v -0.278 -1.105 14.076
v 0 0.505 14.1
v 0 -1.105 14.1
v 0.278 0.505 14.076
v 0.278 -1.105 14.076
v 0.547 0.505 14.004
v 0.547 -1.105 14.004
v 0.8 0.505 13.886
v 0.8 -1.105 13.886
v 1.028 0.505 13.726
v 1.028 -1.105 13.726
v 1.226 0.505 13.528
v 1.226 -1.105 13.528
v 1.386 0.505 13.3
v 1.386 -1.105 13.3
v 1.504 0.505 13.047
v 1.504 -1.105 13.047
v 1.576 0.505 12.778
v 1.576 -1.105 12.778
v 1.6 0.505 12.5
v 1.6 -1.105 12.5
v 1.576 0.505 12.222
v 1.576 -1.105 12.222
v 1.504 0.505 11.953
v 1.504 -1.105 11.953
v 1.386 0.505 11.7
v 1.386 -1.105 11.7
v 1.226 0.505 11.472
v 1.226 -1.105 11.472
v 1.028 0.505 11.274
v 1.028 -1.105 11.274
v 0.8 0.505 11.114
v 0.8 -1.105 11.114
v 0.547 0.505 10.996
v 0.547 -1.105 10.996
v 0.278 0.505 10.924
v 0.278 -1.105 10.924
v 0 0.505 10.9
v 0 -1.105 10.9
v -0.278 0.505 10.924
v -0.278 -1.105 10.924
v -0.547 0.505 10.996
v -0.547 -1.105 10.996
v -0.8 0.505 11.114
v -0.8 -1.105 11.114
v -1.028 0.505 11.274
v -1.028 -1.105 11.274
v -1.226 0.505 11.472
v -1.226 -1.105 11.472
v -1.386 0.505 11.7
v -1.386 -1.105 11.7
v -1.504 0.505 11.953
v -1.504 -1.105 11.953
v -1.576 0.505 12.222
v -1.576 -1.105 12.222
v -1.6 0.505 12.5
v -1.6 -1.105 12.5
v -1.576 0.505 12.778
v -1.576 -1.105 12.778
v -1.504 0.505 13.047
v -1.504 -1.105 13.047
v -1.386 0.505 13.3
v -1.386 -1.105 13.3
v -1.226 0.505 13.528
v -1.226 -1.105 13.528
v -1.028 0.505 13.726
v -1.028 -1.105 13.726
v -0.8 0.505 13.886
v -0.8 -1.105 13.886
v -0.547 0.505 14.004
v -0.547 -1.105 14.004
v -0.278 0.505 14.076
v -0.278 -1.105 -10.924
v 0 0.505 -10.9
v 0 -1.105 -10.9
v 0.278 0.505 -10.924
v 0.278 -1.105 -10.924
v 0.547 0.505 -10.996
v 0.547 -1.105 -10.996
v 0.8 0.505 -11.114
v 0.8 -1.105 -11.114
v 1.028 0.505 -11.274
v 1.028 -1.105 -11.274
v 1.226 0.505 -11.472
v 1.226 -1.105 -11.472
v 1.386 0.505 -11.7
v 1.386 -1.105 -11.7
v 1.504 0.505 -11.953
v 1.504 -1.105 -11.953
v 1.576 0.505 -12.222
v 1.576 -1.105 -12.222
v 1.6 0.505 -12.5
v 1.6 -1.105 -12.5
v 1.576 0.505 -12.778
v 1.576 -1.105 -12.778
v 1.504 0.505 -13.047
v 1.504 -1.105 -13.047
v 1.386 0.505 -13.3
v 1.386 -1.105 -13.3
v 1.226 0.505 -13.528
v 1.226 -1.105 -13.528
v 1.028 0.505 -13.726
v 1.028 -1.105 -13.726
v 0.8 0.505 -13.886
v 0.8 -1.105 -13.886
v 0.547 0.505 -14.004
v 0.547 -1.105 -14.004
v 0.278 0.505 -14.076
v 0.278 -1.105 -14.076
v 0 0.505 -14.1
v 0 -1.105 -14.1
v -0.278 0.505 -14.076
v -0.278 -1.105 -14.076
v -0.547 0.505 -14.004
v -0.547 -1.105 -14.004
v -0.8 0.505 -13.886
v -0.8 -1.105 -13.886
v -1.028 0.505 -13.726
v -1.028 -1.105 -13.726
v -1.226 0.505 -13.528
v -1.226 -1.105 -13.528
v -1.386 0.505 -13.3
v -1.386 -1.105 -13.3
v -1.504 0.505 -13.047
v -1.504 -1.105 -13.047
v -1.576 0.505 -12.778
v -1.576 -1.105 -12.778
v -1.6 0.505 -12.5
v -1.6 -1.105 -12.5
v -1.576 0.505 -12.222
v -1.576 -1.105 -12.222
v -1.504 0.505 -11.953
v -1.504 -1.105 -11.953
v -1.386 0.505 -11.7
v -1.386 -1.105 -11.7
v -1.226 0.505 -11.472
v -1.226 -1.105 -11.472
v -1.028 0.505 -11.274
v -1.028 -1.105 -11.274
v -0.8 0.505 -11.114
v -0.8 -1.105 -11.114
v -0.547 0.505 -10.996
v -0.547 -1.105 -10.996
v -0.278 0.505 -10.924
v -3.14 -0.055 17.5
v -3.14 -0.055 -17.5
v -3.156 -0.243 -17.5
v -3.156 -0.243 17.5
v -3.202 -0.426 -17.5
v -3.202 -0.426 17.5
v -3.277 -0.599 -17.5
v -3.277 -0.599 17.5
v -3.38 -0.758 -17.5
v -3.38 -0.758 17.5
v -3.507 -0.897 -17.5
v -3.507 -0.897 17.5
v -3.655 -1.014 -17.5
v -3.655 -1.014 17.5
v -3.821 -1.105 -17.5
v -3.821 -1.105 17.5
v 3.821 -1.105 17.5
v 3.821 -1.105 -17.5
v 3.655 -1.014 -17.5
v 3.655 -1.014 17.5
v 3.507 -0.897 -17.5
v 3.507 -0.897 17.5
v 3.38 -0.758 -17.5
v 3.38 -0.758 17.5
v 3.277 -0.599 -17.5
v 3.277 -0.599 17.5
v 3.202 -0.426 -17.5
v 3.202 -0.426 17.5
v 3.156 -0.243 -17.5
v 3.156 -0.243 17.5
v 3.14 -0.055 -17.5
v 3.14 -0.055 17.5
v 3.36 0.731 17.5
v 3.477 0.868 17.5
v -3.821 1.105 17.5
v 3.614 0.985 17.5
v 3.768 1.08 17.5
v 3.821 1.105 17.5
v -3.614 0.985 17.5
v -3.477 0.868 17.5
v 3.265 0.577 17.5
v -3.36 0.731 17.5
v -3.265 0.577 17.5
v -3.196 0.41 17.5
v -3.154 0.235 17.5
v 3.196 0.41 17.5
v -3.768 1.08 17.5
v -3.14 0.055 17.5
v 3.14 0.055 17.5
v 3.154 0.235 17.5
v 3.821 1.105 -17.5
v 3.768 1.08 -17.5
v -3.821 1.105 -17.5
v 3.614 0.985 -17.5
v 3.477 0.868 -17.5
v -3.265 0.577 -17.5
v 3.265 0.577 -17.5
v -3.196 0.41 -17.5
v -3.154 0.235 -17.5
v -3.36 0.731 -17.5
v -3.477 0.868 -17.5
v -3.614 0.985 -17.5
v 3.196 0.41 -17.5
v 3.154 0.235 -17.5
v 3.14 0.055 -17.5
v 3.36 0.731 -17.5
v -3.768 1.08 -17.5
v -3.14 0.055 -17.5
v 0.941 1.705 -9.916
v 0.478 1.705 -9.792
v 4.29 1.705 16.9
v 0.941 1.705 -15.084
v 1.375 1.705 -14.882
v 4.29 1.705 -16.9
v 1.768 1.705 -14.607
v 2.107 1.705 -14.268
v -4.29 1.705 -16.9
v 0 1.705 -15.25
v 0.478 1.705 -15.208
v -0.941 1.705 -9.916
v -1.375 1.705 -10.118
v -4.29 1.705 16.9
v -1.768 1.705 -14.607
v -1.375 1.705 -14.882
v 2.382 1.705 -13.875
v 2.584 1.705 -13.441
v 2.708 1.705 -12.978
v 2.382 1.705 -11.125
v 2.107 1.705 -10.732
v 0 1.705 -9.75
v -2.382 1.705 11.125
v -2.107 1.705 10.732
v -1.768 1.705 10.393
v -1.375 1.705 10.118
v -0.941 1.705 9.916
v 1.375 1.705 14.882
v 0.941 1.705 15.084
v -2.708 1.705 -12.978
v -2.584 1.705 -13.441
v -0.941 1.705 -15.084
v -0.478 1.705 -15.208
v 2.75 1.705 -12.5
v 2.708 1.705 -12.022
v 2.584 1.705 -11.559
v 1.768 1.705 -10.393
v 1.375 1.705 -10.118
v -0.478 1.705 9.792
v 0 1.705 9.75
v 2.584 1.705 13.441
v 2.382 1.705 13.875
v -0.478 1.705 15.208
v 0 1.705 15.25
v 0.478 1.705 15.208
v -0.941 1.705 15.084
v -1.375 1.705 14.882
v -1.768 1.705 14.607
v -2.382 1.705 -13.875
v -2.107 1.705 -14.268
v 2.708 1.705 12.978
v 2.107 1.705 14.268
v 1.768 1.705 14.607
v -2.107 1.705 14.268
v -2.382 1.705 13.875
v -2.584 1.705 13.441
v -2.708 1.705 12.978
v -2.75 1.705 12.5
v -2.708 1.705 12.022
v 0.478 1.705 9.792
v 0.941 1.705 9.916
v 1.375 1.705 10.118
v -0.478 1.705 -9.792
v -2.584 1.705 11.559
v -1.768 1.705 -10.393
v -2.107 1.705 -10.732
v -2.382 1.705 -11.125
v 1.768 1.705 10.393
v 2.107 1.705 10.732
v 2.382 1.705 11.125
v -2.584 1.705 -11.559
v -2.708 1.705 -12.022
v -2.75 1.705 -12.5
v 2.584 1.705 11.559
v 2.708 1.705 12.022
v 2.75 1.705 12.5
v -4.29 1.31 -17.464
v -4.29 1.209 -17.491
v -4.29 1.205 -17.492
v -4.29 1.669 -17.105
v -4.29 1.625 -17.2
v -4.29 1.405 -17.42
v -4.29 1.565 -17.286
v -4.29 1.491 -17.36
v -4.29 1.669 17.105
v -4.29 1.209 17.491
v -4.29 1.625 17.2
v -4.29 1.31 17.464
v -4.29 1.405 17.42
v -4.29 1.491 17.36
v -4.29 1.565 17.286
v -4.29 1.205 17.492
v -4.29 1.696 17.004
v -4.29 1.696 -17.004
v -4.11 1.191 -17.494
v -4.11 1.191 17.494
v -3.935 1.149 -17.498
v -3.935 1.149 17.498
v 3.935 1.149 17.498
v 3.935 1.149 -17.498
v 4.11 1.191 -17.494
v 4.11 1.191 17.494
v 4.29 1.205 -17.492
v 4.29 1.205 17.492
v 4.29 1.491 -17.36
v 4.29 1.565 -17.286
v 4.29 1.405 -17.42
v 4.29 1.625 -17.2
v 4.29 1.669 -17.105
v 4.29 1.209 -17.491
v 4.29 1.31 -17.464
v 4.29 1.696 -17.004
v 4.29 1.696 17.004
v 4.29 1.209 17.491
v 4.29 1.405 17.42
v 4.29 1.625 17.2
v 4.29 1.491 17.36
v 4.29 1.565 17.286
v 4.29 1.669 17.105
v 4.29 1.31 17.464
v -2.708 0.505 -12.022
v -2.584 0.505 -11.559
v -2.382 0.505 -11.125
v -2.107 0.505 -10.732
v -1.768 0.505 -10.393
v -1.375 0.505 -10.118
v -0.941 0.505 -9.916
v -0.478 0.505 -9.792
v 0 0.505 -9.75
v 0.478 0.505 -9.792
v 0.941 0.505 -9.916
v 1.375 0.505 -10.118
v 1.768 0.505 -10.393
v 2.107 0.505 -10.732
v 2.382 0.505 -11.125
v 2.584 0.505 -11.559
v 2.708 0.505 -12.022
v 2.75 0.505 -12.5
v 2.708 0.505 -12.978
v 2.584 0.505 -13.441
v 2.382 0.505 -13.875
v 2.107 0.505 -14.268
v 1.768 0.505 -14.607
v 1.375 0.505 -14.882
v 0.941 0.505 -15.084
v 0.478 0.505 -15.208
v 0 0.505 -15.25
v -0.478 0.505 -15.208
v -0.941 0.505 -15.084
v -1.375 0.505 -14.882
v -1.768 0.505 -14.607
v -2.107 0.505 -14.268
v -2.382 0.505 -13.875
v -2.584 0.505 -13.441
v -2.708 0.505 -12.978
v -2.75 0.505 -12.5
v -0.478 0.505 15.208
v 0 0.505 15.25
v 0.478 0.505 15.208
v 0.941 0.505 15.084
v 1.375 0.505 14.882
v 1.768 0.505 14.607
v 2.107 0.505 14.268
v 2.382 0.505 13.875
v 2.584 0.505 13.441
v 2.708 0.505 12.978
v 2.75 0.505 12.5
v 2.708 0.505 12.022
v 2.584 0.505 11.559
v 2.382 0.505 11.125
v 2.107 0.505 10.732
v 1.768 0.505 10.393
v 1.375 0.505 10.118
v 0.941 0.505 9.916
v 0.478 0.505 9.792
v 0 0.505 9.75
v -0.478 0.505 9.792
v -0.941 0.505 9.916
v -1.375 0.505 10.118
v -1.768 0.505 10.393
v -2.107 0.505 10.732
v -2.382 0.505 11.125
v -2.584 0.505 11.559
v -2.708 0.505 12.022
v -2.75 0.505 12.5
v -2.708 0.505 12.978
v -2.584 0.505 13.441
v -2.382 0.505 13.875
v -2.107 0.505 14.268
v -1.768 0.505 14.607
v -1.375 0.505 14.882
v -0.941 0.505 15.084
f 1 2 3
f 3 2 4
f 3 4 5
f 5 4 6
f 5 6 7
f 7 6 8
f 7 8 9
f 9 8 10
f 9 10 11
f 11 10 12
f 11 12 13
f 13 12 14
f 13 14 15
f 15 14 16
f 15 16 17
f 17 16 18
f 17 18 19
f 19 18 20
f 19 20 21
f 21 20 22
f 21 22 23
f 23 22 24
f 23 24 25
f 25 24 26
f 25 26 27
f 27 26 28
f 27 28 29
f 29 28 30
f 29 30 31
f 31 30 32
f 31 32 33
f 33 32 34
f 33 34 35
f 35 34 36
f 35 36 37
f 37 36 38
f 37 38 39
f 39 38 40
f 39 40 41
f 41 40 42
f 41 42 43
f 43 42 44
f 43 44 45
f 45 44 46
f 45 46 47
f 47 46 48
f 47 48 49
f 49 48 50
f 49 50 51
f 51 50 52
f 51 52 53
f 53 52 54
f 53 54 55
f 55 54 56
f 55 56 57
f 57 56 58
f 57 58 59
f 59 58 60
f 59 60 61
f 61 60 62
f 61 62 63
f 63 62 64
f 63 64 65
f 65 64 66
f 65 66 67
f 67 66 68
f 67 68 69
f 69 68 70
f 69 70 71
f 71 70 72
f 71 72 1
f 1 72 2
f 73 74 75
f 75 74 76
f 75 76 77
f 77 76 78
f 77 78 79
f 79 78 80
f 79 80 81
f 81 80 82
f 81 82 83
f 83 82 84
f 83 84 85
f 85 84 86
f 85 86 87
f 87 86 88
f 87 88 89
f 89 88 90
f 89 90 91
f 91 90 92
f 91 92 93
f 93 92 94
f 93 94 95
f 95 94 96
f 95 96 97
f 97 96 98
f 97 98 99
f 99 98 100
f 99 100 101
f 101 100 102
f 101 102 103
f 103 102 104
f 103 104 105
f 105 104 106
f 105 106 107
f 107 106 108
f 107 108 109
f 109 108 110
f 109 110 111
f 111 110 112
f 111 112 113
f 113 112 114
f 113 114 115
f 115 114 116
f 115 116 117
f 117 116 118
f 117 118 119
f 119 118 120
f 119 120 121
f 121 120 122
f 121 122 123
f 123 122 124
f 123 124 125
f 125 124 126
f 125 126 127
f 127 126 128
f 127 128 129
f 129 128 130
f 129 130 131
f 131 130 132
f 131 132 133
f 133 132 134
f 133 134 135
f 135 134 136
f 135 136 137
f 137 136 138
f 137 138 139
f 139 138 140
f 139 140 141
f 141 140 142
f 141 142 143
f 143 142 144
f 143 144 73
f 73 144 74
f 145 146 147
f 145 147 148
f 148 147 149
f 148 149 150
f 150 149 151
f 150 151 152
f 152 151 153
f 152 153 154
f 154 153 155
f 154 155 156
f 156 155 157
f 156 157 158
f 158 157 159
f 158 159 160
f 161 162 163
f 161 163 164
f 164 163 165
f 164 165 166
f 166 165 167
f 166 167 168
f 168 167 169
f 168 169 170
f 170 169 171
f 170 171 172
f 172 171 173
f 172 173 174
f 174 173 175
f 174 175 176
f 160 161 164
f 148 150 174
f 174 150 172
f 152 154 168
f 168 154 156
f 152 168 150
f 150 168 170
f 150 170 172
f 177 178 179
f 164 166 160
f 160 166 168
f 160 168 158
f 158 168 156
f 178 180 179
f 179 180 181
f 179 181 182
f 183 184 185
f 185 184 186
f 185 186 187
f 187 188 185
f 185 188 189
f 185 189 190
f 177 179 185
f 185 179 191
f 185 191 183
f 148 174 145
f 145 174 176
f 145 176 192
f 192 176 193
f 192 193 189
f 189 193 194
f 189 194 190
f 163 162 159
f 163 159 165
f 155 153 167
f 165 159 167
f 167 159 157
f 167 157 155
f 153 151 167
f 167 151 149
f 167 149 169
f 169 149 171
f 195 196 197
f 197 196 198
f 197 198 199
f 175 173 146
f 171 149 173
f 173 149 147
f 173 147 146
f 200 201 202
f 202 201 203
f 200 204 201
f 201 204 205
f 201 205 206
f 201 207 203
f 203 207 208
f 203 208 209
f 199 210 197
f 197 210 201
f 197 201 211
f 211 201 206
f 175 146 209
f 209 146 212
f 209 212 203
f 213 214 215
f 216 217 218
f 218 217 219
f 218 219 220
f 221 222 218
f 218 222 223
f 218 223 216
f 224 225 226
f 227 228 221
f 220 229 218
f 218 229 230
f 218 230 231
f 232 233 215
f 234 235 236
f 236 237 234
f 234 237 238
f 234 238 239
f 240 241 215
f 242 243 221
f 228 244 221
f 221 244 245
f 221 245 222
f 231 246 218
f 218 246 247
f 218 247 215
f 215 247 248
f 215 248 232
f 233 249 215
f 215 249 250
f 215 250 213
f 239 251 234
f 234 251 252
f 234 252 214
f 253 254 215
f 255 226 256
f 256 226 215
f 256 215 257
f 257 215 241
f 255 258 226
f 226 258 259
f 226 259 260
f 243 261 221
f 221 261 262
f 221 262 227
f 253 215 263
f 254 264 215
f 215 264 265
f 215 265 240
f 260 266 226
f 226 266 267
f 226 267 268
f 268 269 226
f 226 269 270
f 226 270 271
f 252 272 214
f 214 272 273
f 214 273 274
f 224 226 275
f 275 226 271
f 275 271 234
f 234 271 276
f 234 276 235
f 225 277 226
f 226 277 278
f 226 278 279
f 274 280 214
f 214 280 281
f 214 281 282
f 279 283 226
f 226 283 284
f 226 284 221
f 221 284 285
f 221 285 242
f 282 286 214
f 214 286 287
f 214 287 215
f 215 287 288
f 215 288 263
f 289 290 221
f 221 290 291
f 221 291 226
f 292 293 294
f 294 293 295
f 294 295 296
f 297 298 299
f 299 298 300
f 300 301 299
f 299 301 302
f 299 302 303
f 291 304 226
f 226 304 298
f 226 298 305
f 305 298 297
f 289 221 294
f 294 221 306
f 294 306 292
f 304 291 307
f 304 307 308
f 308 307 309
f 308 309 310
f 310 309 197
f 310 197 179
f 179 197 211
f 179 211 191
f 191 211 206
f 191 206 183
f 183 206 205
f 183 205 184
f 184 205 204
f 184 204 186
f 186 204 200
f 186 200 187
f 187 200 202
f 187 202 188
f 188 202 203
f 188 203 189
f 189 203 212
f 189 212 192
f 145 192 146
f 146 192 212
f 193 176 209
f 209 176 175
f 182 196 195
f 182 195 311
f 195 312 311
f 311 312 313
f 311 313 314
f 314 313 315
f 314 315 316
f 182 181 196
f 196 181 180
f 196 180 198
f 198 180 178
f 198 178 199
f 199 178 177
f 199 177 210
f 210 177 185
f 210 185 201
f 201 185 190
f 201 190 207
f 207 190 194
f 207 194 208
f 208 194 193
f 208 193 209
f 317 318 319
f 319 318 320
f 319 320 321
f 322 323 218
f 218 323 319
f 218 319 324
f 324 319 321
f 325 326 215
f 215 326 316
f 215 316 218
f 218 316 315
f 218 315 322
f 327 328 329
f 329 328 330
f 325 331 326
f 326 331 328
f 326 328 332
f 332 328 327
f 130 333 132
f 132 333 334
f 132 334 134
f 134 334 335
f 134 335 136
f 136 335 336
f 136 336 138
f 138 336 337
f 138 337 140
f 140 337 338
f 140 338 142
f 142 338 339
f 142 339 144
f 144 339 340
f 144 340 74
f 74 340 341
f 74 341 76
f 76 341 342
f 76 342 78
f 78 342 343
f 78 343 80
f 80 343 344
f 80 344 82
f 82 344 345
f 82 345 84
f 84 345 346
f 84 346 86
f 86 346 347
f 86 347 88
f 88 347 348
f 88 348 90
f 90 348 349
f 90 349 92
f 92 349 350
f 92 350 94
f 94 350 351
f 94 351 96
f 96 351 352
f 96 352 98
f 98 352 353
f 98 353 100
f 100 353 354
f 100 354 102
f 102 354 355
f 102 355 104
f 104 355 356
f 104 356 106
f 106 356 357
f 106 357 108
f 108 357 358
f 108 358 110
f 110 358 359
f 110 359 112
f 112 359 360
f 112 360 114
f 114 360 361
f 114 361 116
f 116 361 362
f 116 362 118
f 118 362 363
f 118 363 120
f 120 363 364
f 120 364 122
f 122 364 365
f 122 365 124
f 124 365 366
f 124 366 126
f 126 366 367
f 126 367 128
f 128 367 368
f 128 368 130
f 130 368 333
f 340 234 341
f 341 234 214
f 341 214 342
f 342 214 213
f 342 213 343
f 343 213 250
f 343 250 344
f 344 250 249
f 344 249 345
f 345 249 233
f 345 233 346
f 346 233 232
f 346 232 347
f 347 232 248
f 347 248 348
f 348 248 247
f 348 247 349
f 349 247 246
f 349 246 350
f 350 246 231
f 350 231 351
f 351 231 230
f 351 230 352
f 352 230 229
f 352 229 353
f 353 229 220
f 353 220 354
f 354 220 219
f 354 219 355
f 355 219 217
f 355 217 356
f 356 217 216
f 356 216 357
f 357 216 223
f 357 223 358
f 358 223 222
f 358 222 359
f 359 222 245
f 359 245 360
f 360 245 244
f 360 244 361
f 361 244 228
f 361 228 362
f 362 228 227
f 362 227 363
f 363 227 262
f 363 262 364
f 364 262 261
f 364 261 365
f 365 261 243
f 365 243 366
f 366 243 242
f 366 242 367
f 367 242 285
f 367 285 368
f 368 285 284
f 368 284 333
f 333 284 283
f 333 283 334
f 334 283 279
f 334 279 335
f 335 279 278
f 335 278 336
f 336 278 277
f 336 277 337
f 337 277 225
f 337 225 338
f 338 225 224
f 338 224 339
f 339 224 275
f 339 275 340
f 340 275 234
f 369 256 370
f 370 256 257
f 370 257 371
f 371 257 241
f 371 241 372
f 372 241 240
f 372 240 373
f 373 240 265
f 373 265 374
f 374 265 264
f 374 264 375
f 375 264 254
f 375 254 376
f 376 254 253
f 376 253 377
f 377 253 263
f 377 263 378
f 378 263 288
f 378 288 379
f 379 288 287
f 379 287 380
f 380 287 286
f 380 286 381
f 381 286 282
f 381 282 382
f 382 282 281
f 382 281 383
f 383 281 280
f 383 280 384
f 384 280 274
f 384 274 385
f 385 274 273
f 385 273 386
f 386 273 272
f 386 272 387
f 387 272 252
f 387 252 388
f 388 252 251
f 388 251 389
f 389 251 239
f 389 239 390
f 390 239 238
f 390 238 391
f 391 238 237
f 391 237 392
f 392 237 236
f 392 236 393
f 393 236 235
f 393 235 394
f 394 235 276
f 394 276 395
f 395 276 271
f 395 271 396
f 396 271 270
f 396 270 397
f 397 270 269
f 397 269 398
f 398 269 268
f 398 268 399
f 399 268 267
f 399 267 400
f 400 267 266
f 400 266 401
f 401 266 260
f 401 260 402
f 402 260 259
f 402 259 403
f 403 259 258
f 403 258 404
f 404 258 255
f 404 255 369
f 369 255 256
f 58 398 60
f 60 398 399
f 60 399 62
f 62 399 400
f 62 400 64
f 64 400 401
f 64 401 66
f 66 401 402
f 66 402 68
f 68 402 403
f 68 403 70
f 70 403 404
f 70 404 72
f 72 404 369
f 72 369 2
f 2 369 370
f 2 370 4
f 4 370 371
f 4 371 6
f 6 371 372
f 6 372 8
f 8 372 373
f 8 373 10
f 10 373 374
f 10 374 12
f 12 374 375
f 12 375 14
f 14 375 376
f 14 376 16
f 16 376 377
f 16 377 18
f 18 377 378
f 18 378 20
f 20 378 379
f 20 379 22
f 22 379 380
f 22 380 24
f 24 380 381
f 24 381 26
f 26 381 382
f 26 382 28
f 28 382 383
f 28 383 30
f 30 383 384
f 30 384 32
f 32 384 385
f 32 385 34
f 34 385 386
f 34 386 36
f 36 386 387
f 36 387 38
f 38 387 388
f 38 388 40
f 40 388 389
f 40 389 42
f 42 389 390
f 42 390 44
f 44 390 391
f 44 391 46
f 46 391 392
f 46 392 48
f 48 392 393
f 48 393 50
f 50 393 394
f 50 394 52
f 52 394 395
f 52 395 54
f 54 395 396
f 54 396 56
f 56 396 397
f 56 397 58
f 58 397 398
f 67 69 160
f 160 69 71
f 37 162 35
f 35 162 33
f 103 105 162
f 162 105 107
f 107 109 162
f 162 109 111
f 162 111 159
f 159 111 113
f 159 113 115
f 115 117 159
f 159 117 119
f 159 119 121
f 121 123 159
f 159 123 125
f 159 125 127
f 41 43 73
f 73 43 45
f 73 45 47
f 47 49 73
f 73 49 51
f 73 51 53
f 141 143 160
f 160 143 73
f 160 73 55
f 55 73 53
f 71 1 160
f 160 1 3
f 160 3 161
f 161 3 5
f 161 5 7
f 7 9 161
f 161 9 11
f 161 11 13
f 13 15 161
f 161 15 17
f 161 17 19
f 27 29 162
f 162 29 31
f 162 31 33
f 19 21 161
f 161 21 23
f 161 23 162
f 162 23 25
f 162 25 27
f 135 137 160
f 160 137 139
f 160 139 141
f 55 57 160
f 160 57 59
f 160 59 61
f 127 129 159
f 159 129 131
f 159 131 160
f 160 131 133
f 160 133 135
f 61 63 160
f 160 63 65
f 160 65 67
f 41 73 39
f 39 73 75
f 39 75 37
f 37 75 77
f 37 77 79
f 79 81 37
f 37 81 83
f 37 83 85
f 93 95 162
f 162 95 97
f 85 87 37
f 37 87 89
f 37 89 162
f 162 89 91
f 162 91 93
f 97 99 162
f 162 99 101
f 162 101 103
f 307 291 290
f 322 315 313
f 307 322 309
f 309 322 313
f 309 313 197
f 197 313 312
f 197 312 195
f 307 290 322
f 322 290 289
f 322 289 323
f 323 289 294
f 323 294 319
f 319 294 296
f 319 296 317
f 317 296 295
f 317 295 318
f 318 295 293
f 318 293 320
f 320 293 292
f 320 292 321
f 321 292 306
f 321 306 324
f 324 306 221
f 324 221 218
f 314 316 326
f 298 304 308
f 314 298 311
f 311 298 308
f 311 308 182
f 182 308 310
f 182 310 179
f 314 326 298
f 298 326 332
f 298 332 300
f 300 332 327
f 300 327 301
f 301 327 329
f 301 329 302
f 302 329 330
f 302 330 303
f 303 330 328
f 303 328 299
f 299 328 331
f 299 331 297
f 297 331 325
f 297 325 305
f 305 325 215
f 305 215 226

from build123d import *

# Parameters (mm, degrees)
BOSS_EXTRUDE1_DEPTH = 17.5
SKETCH2_R           = 1.6
CUT_EXTRUDE1_DEPTH  = 4.41
SKETCH3_R           = 2.75
CUT_EXTRUDE2_DEPTH  = 1.2
SKETCH4_W           = 8.58
SKETCH4_H           = 35
CUT_EXTRUDE3_DEPTH  = 0.6
FILLET1_R           = 0.6


with BuildPart() as part:
    # Sketch1 → Boss-Extrude1 (new body, symmetric)
    with BuildSketch(Plane.XY):
        with BuildLine():
            Line((-3.14, 0.055), (-3.14, -0.055))
            ThreePointArc((-3.14, -0.055), (-3.476827202, -0.868172798), (-4.29, -1.205))
            Line((-4.29, -1.205), (-4.29, -1.705))
            Line((-4.29, -1.705), (4.29, -1.705))
            Line((4.29, -1.705), (4.29, -1.205))
            ThreePointArc((4.29, -1.205), (3.476827202, -0.868172798), (3.14, -0.055))
            Line((3.14, -0.055), (3.14, 0.055))
            ThreePointArc((3.14, 0.055), (3.476827202, 0.868172798), (4.29, 1.205))
            Line((4.29, 1.205), (4.29, 1.705))
            Line((4.29, 1.705), (-4.29, 1.705))
            Line((-4.29, 1.705), (-4.29, 1.205))
            ThreePointArc((-4.29, 1.205), (-3.476827202, 0.868172798), (-3.14, 0.055))
        make_face()
    extrude(amount=BOSS_EXTRUDE1_DEPTH, both=True)

    # Sketch2 → Cut-Extrude1 (cut, through all)
    with BuildSketch(Plane(origin=(0, 1.705, 0), x_dir=(1, 0, 0), z_dir=(0, 1, 0))):
        with Locations((0, 12.5)):
            Circle(SKETCH2_R)
    cut_extrude1 = extrude(amount=-CUT_EXTRUDE1_DEPTH, mode=Mode.SUBTRACT)

    # Sketch3 → Cut-Extrude2 (cut)
    with BuildSketch(Plane(origin=(0, 1.705, 0), x_dir=(1, 0, 0), z_dir=(0, 1, 0))):
        with Locations((0, 12.5)):
            Circle(SKETCH3_R)
    cut_extrude2 = extrude(amount=-CUT_EXTRUDE2_DEPTH, mode=Mode.SUBTRACT)

    # Mirror1: Cut-Extrude1, Cut-Extrude2 across plane
    add(cut_extrude1.mirror(Plane.XY), mode=Mode.SUBTRACT)
    add(cut_extrude2.mirror(Plane.XY), mode=Mode.SUBTRACT)

    # Sketch4 → Cut-Extrude3 (cut)
    with BuildSketch(Plane.XZ.offset(1.705)):
        Rectangle(SKETCH4_W, SKETCH4_H)
    extrude(amount=-CUT_EXTRUDE3_DEPTH, mode=Mode.SUBTRACT)

    # Fillet1
    fillet1_edges = [part.edges().sort_by_distance(p)[0] for p in [
        (0, 1.705, -17.5),
        (0, 1.705, 17.5),
    ]]
    fillet(fillet1_edges, radius=FILLET1_R)


solid = part.part
